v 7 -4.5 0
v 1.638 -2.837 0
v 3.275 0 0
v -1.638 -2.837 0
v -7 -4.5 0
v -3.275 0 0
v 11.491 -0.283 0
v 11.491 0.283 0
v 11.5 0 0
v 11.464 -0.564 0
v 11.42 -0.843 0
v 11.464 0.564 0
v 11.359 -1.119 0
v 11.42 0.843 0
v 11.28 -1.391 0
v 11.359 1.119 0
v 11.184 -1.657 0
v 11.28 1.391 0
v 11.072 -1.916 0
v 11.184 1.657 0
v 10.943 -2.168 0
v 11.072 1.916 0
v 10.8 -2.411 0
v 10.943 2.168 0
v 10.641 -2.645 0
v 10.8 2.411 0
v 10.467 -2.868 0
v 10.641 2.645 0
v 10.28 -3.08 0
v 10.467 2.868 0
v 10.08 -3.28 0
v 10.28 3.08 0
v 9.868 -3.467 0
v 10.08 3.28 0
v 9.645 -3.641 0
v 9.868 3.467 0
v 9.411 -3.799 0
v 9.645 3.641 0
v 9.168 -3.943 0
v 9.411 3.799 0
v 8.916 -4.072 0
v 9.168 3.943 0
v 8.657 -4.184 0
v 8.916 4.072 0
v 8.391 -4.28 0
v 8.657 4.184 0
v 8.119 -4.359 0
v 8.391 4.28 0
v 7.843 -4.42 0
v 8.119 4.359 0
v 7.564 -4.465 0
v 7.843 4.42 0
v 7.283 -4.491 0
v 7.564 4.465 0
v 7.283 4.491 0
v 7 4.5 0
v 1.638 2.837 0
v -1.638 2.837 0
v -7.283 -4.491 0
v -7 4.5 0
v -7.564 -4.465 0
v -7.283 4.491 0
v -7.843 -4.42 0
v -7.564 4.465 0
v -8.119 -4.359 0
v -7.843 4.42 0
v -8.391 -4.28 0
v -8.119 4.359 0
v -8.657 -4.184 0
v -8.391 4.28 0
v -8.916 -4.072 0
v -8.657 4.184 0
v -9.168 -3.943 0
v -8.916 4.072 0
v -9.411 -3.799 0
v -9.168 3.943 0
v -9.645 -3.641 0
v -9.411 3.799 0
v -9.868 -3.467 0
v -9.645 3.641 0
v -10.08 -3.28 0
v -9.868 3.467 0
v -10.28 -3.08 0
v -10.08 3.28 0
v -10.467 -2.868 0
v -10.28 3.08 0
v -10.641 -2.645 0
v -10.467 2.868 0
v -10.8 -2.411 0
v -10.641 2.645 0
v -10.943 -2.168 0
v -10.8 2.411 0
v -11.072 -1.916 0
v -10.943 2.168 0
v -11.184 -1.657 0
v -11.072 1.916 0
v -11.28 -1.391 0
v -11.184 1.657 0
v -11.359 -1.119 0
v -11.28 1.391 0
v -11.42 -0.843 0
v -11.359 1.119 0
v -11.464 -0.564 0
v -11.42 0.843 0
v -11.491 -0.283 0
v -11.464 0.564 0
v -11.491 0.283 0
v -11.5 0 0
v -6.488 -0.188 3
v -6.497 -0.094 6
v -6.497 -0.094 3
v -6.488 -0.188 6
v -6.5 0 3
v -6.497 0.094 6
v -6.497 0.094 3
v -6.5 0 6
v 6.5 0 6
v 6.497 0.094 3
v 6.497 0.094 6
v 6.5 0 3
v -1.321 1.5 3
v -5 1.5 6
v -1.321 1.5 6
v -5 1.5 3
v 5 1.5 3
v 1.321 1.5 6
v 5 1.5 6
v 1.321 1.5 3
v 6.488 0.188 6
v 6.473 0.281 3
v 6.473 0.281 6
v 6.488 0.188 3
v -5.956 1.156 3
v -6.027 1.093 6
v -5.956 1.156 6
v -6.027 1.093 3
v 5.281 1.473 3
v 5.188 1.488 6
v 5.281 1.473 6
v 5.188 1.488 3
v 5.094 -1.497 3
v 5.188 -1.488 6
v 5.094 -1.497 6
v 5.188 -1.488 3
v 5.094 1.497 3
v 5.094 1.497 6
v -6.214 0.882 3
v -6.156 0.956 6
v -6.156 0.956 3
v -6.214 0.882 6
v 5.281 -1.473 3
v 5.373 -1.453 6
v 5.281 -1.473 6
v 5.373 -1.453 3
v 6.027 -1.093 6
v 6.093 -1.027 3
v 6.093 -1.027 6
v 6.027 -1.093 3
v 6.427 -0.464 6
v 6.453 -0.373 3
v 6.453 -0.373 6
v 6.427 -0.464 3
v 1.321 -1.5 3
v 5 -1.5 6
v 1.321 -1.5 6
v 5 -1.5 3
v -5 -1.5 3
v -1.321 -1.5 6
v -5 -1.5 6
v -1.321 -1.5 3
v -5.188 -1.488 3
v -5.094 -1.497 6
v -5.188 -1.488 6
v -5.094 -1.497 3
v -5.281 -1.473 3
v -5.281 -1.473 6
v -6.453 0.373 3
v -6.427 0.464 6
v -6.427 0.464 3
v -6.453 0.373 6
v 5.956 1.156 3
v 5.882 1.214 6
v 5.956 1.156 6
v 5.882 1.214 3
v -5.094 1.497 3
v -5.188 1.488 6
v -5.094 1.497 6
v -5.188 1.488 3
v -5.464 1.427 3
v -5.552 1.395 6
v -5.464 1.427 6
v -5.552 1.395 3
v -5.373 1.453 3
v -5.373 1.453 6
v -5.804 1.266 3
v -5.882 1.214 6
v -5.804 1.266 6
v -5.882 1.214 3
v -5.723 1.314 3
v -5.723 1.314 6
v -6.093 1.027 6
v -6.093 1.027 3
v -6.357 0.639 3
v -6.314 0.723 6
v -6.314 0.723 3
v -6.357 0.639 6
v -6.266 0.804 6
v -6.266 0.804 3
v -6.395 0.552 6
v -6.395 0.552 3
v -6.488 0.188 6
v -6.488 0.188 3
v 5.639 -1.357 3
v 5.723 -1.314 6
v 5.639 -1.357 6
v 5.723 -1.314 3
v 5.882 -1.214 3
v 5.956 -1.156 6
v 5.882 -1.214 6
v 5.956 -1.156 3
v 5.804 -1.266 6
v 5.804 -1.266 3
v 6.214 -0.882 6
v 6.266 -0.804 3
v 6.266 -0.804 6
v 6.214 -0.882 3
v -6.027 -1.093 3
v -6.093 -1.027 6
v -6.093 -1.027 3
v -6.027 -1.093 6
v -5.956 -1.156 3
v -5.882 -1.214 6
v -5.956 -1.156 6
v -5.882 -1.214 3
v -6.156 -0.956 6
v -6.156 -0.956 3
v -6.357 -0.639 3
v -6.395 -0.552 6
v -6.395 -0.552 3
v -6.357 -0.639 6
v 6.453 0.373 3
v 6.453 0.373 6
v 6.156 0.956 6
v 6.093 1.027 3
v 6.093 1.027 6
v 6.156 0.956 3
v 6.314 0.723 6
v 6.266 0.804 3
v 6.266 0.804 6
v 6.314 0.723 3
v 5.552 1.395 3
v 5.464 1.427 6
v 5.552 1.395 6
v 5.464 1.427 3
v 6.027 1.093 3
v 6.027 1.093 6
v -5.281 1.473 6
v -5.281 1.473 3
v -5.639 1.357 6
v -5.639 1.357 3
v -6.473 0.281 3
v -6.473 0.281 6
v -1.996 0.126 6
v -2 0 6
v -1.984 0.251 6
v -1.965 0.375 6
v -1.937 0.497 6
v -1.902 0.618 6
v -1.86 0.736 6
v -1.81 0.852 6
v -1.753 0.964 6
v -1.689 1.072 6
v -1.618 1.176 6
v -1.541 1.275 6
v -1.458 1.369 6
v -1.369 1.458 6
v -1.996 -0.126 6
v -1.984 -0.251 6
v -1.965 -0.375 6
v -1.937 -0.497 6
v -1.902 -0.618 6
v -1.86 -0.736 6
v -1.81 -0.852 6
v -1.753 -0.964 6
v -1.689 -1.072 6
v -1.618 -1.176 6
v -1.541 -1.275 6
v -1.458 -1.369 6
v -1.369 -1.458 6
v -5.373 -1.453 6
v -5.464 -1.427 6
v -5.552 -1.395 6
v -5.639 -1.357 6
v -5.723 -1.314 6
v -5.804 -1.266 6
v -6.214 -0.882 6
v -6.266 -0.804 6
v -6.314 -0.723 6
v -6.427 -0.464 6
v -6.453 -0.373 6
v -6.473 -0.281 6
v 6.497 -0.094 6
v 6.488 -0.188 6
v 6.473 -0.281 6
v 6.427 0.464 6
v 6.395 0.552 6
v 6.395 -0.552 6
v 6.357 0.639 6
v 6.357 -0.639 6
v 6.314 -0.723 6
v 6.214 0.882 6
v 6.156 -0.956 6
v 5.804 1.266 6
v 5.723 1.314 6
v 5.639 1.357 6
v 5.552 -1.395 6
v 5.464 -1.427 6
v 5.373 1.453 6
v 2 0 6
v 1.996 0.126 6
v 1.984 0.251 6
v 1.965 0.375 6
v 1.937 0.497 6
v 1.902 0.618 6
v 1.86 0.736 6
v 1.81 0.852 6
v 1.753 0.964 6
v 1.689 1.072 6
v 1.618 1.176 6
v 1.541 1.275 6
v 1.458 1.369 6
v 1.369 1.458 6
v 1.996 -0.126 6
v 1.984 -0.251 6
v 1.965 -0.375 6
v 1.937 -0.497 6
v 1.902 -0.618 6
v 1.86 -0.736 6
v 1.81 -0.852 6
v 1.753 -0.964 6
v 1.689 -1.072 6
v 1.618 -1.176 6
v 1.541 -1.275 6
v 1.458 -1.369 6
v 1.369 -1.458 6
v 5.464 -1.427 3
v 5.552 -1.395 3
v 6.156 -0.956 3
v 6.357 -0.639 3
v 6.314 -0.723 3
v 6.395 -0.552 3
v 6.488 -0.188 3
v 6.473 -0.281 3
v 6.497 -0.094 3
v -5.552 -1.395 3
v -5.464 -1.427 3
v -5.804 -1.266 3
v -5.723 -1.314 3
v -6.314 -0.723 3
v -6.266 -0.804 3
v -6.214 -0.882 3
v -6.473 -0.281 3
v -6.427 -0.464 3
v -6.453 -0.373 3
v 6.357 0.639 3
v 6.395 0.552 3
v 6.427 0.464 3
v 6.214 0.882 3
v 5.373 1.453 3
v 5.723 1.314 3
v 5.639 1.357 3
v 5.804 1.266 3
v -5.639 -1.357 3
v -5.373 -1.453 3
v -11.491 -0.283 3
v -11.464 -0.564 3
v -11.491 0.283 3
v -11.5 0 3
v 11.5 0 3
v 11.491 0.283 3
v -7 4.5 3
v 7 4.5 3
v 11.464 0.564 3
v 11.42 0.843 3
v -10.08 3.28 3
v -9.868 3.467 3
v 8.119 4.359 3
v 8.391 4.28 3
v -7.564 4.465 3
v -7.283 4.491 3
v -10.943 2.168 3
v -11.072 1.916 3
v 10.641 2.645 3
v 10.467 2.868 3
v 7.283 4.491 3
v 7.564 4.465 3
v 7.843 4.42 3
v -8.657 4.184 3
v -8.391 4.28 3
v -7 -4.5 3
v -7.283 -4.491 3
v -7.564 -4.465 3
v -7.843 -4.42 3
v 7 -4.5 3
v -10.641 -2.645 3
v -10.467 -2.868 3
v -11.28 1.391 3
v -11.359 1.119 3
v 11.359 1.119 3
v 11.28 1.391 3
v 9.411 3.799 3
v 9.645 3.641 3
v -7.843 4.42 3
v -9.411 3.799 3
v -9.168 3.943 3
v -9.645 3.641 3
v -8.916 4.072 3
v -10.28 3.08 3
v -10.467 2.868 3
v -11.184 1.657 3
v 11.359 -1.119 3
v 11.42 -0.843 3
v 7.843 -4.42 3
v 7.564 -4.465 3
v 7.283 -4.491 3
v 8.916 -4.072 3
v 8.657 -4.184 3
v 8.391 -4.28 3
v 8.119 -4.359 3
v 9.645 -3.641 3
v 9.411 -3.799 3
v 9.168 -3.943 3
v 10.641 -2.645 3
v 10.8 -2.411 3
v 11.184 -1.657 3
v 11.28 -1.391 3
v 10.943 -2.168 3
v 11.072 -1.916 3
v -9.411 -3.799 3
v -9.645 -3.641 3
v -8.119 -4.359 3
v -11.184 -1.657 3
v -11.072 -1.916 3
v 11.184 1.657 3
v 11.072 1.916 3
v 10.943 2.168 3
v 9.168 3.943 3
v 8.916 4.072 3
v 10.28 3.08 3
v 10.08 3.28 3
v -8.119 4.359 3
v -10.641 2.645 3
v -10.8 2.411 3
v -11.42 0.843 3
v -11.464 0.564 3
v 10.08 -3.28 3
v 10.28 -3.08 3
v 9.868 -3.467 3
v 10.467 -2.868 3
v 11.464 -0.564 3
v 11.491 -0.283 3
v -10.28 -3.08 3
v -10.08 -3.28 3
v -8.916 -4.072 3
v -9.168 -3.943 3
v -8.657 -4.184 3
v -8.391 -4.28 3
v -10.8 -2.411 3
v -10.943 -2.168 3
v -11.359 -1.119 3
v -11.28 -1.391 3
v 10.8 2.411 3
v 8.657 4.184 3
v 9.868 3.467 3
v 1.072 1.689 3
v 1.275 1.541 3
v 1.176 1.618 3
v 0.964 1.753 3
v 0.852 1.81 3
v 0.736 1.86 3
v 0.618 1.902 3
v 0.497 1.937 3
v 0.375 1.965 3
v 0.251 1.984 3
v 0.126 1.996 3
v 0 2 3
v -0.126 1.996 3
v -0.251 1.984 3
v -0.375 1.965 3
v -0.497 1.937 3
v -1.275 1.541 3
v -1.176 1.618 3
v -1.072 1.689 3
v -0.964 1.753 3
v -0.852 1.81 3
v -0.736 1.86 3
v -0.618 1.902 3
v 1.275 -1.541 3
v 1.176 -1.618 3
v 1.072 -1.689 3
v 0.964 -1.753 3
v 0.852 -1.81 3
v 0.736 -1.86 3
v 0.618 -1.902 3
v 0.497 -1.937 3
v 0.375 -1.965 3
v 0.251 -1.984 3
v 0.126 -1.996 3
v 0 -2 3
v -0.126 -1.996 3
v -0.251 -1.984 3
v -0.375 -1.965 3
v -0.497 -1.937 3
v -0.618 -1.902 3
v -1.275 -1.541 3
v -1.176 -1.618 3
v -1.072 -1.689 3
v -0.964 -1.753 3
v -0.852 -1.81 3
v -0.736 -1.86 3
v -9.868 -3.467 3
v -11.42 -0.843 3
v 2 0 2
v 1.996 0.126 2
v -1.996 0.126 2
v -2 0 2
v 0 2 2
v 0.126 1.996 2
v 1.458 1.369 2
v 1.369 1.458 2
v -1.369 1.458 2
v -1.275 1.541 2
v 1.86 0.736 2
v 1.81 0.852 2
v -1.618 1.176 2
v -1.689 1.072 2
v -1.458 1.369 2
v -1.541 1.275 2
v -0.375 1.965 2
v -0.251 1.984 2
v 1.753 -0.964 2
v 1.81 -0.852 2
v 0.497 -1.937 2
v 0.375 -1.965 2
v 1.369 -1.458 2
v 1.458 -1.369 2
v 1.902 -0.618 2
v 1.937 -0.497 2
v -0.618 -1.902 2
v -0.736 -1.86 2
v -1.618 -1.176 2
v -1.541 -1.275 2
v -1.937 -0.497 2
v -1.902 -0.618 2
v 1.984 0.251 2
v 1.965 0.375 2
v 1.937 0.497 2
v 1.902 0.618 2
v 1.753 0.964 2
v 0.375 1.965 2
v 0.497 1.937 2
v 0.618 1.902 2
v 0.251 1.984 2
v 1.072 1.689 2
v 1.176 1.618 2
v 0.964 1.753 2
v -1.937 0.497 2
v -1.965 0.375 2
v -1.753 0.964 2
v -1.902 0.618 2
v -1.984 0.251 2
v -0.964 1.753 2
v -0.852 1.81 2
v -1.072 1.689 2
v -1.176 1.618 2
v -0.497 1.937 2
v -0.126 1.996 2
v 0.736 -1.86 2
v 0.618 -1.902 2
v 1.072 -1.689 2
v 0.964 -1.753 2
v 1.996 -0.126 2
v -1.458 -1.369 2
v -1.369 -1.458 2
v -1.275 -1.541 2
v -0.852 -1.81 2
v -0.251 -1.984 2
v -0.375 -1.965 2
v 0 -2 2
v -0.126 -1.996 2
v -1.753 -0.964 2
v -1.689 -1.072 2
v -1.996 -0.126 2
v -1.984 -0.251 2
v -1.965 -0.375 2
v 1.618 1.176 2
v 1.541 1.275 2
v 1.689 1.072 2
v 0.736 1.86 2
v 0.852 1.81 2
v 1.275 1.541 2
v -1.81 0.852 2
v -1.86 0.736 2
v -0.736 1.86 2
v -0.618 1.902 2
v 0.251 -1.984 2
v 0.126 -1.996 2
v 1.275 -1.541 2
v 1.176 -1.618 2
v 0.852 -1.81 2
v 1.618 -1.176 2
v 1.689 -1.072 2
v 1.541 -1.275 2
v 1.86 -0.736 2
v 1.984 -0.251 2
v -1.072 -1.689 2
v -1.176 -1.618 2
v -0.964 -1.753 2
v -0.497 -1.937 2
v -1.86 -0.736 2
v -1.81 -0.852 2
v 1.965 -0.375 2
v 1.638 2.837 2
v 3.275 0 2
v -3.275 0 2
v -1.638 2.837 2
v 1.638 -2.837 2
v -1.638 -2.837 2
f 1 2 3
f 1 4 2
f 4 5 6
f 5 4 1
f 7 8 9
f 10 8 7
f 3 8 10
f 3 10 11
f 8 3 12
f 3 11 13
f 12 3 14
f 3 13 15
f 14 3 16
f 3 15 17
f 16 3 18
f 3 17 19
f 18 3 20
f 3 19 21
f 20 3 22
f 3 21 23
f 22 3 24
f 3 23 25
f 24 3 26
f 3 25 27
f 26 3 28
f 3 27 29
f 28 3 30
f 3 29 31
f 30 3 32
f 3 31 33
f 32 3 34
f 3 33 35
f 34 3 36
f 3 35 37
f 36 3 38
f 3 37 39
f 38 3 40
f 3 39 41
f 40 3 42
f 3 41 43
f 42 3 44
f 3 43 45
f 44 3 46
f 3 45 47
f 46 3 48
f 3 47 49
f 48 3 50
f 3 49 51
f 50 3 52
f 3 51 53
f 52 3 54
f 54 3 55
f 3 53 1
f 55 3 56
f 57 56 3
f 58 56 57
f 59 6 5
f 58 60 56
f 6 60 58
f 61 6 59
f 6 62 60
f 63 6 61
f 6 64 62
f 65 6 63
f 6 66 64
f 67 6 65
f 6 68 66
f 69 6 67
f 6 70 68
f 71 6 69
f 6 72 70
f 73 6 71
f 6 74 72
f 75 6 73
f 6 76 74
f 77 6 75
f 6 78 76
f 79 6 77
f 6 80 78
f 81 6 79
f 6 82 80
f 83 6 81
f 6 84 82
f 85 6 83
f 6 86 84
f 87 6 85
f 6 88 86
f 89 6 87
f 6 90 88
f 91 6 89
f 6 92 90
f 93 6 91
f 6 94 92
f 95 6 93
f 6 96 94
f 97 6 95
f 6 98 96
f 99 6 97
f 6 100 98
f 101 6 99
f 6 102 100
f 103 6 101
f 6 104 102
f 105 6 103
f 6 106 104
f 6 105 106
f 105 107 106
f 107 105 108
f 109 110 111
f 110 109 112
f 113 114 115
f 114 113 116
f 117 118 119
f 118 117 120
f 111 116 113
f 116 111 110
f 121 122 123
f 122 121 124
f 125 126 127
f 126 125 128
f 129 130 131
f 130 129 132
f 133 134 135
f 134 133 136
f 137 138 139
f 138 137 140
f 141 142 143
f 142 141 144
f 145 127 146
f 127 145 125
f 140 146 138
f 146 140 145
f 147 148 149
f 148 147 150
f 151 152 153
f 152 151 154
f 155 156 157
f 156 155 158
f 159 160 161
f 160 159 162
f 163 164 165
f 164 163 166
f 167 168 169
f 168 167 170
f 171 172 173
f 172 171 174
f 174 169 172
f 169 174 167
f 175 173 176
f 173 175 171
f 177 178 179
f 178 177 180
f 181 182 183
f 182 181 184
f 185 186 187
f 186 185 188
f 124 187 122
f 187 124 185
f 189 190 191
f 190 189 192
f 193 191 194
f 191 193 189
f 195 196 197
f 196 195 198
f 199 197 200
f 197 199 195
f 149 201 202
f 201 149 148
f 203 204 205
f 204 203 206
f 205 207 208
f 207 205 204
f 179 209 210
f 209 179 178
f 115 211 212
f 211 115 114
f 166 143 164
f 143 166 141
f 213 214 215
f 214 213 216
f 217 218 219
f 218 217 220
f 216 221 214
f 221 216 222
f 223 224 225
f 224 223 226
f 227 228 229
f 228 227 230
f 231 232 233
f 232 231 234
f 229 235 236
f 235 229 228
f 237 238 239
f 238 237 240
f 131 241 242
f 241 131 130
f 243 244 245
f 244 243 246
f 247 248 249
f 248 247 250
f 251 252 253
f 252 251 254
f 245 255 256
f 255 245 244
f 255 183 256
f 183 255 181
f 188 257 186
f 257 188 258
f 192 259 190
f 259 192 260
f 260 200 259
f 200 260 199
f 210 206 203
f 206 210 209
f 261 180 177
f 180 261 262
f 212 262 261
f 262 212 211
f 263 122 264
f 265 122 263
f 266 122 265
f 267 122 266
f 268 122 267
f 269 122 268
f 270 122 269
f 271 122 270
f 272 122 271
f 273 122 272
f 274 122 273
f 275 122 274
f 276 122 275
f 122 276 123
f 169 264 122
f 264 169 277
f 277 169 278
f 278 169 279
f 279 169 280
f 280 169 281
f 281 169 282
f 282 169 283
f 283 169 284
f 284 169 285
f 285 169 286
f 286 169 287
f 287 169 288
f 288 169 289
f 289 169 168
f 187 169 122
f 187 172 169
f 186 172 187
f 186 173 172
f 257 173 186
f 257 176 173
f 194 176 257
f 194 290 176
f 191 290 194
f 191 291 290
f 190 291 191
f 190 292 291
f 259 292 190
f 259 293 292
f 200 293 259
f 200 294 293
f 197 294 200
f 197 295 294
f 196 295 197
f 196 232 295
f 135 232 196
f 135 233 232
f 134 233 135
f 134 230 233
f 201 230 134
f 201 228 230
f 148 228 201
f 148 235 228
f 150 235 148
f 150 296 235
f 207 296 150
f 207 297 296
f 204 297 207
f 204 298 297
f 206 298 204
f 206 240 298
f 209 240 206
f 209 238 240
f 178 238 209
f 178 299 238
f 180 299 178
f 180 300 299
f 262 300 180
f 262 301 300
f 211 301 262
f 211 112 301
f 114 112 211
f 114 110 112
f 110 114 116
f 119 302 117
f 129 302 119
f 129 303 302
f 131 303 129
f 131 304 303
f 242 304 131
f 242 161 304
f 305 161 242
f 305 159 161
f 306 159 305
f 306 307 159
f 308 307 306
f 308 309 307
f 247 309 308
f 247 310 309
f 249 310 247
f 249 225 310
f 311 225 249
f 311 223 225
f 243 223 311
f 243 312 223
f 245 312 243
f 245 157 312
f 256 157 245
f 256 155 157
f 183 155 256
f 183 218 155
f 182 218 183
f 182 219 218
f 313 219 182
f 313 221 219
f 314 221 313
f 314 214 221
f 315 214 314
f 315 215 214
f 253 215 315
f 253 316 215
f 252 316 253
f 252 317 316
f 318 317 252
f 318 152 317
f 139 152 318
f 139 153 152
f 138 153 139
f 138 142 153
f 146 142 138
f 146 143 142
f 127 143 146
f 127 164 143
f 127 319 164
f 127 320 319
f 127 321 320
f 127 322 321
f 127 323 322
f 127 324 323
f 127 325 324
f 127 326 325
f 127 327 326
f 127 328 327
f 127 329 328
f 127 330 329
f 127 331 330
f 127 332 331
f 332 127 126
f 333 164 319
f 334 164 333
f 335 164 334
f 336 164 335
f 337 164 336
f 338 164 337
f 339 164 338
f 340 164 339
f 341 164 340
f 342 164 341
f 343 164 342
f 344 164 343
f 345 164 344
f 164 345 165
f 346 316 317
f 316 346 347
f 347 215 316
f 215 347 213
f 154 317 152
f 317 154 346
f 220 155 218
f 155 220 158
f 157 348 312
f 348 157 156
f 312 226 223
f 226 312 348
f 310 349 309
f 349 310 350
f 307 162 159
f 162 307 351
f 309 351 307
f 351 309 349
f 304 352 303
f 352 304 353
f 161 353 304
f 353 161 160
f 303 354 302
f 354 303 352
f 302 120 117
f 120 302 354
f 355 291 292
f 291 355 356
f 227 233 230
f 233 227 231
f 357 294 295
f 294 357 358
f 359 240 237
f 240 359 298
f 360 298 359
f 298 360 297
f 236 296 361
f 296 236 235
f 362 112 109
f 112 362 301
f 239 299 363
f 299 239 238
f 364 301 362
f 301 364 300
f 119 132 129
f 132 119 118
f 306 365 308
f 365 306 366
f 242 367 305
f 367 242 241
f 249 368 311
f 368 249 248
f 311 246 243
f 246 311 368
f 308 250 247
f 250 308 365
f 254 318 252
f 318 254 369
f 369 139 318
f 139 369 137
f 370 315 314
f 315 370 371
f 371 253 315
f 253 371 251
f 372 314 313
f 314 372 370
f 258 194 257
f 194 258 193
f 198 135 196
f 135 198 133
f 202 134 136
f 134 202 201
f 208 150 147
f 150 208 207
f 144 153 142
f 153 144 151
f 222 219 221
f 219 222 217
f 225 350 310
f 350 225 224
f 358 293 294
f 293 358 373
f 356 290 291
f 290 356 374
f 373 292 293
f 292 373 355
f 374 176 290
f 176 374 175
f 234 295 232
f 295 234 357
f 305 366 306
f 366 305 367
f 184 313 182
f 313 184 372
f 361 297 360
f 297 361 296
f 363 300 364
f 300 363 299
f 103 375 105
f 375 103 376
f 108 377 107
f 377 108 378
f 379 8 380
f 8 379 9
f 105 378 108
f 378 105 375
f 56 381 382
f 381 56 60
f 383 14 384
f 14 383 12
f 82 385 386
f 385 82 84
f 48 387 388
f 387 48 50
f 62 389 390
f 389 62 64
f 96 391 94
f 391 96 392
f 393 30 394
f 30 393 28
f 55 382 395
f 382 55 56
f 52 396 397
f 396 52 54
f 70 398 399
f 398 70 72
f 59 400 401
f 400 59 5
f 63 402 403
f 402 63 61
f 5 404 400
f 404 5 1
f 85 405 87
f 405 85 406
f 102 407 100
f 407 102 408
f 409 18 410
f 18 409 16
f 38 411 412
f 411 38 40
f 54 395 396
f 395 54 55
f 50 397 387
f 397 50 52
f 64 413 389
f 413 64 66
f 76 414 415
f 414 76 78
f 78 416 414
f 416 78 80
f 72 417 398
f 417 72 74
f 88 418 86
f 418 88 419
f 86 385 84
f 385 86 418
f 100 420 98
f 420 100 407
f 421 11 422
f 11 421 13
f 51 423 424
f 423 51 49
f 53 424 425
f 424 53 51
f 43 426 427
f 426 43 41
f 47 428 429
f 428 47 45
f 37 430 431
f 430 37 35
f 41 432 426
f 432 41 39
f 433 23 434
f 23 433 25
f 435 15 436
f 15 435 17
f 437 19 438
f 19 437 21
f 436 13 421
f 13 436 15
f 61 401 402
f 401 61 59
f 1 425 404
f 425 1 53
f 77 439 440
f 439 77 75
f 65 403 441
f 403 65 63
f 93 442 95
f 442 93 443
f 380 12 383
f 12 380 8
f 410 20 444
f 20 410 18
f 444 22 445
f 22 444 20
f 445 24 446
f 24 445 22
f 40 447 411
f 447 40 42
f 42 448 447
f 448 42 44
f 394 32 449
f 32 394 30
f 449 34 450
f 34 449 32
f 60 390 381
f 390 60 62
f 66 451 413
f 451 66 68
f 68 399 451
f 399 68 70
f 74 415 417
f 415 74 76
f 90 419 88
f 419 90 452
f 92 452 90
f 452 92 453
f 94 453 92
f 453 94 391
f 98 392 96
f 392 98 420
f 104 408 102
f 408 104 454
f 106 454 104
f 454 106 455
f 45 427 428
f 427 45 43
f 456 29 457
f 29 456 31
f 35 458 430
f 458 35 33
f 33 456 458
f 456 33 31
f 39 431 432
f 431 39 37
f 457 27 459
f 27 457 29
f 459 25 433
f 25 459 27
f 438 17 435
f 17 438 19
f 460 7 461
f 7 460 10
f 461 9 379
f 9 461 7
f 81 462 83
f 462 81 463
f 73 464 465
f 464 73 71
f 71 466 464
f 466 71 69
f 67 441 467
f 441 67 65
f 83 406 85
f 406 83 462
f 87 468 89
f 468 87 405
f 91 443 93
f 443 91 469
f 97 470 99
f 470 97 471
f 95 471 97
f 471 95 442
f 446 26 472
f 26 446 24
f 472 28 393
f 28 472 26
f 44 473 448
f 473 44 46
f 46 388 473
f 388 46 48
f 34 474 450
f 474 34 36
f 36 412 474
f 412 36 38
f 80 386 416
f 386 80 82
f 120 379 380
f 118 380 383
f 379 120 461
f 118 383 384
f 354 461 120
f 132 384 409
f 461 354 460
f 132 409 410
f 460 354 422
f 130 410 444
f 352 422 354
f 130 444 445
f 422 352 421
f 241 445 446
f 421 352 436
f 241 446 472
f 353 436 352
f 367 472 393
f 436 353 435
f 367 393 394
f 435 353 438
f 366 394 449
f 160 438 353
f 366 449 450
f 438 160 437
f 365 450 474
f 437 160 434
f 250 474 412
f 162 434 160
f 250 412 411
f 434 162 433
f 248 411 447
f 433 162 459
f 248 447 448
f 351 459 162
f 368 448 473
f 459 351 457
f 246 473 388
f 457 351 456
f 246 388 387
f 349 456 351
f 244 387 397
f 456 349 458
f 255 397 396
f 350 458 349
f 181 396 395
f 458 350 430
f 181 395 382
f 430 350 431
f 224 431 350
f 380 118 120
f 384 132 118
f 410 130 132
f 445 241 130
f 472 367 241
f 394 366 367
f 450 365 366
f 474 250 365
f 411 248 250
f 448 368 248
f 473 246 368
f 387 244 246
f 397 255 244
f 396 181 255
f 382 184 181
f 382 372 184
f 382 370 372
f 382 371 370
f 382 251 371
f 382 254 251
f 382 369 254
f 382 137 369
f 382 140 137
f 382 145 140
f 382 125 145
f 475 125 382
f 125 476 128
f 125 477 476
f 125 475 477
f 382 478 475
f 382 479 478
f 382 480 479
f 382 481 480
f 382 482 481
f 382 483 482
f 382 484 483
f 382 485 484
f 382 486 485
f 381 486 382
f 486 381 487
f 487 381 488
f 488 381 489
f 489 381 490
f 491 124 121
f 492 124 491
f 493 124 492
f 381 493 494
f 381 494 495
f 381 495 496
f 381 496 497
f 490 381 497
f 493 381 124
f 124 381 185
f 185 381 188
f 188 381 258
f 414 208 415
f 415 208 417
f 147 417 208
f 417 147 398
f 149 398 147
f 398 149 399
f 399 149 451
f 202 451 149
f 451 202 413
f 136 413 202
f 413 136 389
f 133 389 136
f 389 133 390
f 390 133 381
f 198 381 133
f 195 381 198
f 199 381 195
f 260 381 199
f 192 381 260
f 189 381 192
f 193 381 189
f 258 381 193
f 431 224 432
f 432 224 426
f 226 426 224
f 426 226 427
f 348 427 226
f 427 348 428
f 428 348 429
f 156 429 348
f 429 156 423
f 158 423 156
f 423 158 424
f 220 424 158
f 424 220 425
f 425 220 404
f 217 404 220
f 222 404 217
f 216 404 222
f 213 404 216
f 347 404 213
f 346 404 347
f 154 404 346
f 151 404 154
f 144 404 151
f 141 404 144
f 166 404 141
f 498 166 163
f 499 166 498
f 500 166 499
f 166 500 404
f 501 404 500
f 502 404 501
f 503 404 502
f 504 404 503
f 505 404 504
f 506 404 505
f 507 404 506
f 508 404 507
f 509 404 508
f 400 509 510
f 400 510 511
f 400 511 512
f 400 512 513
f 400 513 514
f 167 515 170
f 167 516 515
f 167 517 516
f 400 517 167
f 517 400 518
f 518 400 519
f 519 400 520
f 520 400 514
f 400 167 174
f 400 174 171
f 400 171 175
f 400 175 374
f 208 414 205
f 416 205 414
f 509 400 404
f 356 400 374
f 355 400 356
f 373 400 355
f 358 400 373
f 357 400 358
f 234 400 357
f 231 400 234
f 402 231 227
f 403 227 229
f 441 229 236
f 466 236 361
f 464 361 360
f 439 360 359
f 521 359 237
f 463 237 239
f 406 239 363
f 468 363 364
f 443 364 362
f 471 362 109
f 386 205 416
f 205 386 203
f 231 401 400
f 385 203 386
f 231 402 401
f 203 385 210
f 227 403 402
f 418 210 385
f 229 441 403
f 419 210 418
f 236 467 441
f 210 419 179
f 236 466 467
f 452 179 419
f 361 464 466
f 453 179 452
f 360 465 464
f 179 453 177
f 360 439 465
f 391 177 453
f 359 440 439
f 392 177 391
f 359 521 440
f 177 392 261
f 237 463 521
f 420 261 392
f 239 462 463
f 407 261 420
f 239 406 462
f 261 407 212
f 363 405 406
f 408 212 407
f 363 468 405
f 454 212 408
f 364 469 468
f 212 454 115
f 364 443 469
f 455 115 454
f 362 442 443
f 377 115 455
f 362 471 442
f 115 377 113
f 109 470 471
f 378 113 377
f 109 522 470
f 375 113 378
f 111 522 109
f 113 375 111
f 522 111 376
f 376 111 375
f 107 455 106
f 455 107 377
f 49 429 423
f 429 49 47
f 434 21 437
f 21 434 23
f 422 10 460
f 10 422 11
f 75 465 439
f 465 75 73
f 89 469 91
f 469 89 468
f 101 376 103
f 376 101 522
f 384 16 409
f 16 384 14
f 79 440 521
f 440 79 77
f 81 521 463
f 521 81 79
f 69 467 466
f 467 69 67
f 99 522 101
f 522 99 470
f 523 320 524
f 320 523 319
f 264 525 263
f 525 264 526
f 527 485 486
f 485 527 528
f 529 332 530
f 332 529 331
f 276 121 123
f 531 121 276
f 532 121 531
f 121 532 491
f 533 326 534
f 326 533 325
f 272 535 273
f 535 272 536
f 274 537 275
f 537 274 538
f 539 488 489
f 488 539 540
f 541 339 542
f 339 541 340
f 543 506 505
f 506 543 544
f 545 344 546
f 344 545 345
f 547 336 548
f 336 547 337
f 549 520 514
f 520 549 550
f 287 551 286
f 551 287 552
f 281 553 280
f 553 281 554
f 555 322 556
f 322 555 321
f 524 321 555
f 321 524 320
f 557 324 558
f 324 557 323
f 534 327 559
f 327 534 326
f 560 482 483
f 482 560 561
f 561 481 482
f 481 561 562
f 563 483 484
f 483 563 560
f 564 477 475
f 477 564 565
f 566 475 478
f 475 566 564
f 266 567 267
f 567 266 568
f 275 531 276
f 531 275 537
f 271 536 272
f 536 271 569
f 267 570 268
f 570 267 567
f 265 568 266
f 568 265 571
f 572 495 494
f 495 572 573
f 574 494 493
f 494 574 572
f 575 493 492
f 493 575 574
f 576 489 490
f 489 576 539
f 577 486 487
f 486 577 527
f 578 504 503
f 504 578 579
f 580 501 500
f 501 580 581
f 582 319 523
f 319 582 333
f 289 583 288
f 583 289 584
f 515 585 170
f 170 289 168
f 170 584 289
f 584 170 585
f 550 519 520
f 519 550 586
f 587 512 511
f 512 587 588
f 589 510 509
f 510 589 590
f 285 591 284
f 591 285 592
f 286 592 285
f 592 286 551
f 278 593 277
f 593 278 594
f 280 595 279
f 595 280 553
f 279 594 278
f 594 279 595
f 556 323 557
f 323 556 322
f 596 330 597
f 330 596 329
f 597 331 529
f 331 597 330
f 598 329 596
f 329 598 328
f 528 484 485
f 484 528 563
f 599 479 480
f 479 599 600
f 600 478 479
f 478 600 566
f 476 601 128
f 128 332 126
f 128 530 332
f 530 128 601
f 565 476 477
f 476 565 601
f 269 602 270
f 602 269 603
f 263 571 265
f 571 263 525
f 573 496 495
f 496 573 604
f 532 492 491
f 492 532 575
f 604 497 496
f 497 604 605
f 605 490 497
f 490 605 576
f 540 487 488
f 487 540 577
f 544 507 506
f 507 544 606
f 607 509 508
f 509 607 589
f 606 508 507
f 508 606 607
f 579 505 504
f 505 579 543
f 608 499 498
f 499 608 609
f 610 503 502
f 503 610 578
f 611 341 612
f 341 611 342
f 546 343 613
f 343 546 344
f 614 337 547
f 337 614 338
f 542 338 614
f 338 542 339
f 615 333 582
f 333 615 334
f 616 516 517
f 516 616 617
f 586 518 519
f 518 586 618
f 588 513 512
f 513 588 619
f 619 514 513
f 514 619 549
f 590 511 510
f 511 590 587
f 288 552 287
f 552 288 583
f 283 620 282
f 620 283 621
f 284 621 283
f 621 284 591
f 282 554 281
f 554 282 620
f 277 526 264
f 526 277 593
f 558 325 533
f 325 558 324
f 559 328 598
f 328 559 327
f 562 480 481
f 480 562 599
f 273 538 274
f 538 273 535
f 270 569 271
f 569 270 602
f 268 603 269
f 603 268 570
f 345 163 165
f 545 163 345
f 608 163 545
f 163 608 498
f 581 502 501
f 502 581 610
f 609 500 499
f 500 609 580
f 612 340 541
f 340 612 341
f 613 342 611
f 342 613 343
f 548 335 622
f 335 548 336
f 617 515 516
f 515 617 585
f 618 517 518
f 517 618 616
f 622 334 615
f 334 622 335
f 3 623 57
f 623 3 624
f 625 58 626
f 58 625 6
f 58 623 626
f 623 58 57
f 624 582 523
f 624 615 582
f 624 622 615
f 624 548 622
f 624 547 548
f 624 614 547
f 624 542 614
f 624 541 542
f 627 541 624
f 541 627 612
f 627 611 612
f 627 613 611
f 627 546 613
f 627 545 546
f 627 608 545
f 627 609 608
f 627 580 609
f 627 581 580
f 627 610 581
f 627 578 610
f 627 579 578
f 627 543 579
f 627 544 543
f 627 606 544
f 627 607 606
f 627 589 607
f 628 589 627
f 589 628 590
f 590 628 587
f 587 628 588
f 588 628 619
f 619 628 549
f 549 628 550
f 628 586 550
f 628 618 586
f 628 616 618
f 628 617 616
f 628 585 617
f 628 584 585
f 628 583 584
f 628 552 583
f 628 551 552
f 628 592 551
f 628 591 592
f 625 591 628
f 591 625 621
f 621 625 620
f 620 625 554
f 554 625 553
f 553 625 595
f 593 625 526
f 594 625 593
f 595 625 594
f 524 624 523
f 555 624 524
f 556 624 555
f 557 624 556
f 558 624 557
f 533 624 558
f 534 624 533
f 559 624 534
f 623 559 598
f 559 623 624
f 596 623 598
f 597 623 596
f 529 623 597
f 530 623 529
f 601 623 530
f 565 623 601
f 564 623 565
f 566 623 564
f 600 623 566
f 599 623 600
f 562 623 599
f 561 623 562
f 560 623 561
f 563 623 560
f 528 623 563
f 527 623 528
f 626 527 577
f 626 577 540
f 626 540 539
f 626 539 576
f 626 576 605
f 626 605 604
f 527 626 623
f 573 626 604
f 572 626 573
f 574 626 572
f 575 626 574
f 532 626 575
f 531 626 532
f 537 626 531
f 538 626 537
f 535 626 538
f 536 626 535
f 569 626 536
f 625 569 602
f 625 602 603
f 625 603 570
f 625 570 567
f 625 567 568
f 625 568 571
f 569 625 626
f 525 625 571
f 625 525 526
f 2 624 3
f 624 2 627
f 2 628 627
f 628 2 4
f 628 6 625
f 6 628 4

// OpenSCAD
// Length of the larger puck and the smaller puck
lengths = [10, 14];

// Width of the larger puck and the smaller puck
widths = [3, 9];

// Height of the larger puck and the smaller puck
heights = [6, 3];

nut_trap_depth = 2;

// on_the_side: 1 for putting the hole on the side, 0 for the center
on_the_side=0;

difference() {
  // Create the larger puck and smaller puck
  for(i = [0, 1]) {
    linear_extrude(height=heights[i]) {
      hull() {
        translate([-lengths[i]/2, 0, 0])
        circle(d = widths[i], $fn = 100);

        translate([lengths[i]/2, 0, 0])
        circle(d = widths[i], $fn = 100);
      }
    }
  }

  translate([on_the_side*lengths[0]/2, 0, 0]) {
    // Subtract out the screw hole
    cylinder(d = 4, h = 20, $fn = 100, center = true);
      
    // Subtract out the nut trap
    cylinder(d = 5.5 / cos(180 / 6) + 0.2, h = nut_trap_depth*2, $fn = 6, center = true);
  }
  
}
